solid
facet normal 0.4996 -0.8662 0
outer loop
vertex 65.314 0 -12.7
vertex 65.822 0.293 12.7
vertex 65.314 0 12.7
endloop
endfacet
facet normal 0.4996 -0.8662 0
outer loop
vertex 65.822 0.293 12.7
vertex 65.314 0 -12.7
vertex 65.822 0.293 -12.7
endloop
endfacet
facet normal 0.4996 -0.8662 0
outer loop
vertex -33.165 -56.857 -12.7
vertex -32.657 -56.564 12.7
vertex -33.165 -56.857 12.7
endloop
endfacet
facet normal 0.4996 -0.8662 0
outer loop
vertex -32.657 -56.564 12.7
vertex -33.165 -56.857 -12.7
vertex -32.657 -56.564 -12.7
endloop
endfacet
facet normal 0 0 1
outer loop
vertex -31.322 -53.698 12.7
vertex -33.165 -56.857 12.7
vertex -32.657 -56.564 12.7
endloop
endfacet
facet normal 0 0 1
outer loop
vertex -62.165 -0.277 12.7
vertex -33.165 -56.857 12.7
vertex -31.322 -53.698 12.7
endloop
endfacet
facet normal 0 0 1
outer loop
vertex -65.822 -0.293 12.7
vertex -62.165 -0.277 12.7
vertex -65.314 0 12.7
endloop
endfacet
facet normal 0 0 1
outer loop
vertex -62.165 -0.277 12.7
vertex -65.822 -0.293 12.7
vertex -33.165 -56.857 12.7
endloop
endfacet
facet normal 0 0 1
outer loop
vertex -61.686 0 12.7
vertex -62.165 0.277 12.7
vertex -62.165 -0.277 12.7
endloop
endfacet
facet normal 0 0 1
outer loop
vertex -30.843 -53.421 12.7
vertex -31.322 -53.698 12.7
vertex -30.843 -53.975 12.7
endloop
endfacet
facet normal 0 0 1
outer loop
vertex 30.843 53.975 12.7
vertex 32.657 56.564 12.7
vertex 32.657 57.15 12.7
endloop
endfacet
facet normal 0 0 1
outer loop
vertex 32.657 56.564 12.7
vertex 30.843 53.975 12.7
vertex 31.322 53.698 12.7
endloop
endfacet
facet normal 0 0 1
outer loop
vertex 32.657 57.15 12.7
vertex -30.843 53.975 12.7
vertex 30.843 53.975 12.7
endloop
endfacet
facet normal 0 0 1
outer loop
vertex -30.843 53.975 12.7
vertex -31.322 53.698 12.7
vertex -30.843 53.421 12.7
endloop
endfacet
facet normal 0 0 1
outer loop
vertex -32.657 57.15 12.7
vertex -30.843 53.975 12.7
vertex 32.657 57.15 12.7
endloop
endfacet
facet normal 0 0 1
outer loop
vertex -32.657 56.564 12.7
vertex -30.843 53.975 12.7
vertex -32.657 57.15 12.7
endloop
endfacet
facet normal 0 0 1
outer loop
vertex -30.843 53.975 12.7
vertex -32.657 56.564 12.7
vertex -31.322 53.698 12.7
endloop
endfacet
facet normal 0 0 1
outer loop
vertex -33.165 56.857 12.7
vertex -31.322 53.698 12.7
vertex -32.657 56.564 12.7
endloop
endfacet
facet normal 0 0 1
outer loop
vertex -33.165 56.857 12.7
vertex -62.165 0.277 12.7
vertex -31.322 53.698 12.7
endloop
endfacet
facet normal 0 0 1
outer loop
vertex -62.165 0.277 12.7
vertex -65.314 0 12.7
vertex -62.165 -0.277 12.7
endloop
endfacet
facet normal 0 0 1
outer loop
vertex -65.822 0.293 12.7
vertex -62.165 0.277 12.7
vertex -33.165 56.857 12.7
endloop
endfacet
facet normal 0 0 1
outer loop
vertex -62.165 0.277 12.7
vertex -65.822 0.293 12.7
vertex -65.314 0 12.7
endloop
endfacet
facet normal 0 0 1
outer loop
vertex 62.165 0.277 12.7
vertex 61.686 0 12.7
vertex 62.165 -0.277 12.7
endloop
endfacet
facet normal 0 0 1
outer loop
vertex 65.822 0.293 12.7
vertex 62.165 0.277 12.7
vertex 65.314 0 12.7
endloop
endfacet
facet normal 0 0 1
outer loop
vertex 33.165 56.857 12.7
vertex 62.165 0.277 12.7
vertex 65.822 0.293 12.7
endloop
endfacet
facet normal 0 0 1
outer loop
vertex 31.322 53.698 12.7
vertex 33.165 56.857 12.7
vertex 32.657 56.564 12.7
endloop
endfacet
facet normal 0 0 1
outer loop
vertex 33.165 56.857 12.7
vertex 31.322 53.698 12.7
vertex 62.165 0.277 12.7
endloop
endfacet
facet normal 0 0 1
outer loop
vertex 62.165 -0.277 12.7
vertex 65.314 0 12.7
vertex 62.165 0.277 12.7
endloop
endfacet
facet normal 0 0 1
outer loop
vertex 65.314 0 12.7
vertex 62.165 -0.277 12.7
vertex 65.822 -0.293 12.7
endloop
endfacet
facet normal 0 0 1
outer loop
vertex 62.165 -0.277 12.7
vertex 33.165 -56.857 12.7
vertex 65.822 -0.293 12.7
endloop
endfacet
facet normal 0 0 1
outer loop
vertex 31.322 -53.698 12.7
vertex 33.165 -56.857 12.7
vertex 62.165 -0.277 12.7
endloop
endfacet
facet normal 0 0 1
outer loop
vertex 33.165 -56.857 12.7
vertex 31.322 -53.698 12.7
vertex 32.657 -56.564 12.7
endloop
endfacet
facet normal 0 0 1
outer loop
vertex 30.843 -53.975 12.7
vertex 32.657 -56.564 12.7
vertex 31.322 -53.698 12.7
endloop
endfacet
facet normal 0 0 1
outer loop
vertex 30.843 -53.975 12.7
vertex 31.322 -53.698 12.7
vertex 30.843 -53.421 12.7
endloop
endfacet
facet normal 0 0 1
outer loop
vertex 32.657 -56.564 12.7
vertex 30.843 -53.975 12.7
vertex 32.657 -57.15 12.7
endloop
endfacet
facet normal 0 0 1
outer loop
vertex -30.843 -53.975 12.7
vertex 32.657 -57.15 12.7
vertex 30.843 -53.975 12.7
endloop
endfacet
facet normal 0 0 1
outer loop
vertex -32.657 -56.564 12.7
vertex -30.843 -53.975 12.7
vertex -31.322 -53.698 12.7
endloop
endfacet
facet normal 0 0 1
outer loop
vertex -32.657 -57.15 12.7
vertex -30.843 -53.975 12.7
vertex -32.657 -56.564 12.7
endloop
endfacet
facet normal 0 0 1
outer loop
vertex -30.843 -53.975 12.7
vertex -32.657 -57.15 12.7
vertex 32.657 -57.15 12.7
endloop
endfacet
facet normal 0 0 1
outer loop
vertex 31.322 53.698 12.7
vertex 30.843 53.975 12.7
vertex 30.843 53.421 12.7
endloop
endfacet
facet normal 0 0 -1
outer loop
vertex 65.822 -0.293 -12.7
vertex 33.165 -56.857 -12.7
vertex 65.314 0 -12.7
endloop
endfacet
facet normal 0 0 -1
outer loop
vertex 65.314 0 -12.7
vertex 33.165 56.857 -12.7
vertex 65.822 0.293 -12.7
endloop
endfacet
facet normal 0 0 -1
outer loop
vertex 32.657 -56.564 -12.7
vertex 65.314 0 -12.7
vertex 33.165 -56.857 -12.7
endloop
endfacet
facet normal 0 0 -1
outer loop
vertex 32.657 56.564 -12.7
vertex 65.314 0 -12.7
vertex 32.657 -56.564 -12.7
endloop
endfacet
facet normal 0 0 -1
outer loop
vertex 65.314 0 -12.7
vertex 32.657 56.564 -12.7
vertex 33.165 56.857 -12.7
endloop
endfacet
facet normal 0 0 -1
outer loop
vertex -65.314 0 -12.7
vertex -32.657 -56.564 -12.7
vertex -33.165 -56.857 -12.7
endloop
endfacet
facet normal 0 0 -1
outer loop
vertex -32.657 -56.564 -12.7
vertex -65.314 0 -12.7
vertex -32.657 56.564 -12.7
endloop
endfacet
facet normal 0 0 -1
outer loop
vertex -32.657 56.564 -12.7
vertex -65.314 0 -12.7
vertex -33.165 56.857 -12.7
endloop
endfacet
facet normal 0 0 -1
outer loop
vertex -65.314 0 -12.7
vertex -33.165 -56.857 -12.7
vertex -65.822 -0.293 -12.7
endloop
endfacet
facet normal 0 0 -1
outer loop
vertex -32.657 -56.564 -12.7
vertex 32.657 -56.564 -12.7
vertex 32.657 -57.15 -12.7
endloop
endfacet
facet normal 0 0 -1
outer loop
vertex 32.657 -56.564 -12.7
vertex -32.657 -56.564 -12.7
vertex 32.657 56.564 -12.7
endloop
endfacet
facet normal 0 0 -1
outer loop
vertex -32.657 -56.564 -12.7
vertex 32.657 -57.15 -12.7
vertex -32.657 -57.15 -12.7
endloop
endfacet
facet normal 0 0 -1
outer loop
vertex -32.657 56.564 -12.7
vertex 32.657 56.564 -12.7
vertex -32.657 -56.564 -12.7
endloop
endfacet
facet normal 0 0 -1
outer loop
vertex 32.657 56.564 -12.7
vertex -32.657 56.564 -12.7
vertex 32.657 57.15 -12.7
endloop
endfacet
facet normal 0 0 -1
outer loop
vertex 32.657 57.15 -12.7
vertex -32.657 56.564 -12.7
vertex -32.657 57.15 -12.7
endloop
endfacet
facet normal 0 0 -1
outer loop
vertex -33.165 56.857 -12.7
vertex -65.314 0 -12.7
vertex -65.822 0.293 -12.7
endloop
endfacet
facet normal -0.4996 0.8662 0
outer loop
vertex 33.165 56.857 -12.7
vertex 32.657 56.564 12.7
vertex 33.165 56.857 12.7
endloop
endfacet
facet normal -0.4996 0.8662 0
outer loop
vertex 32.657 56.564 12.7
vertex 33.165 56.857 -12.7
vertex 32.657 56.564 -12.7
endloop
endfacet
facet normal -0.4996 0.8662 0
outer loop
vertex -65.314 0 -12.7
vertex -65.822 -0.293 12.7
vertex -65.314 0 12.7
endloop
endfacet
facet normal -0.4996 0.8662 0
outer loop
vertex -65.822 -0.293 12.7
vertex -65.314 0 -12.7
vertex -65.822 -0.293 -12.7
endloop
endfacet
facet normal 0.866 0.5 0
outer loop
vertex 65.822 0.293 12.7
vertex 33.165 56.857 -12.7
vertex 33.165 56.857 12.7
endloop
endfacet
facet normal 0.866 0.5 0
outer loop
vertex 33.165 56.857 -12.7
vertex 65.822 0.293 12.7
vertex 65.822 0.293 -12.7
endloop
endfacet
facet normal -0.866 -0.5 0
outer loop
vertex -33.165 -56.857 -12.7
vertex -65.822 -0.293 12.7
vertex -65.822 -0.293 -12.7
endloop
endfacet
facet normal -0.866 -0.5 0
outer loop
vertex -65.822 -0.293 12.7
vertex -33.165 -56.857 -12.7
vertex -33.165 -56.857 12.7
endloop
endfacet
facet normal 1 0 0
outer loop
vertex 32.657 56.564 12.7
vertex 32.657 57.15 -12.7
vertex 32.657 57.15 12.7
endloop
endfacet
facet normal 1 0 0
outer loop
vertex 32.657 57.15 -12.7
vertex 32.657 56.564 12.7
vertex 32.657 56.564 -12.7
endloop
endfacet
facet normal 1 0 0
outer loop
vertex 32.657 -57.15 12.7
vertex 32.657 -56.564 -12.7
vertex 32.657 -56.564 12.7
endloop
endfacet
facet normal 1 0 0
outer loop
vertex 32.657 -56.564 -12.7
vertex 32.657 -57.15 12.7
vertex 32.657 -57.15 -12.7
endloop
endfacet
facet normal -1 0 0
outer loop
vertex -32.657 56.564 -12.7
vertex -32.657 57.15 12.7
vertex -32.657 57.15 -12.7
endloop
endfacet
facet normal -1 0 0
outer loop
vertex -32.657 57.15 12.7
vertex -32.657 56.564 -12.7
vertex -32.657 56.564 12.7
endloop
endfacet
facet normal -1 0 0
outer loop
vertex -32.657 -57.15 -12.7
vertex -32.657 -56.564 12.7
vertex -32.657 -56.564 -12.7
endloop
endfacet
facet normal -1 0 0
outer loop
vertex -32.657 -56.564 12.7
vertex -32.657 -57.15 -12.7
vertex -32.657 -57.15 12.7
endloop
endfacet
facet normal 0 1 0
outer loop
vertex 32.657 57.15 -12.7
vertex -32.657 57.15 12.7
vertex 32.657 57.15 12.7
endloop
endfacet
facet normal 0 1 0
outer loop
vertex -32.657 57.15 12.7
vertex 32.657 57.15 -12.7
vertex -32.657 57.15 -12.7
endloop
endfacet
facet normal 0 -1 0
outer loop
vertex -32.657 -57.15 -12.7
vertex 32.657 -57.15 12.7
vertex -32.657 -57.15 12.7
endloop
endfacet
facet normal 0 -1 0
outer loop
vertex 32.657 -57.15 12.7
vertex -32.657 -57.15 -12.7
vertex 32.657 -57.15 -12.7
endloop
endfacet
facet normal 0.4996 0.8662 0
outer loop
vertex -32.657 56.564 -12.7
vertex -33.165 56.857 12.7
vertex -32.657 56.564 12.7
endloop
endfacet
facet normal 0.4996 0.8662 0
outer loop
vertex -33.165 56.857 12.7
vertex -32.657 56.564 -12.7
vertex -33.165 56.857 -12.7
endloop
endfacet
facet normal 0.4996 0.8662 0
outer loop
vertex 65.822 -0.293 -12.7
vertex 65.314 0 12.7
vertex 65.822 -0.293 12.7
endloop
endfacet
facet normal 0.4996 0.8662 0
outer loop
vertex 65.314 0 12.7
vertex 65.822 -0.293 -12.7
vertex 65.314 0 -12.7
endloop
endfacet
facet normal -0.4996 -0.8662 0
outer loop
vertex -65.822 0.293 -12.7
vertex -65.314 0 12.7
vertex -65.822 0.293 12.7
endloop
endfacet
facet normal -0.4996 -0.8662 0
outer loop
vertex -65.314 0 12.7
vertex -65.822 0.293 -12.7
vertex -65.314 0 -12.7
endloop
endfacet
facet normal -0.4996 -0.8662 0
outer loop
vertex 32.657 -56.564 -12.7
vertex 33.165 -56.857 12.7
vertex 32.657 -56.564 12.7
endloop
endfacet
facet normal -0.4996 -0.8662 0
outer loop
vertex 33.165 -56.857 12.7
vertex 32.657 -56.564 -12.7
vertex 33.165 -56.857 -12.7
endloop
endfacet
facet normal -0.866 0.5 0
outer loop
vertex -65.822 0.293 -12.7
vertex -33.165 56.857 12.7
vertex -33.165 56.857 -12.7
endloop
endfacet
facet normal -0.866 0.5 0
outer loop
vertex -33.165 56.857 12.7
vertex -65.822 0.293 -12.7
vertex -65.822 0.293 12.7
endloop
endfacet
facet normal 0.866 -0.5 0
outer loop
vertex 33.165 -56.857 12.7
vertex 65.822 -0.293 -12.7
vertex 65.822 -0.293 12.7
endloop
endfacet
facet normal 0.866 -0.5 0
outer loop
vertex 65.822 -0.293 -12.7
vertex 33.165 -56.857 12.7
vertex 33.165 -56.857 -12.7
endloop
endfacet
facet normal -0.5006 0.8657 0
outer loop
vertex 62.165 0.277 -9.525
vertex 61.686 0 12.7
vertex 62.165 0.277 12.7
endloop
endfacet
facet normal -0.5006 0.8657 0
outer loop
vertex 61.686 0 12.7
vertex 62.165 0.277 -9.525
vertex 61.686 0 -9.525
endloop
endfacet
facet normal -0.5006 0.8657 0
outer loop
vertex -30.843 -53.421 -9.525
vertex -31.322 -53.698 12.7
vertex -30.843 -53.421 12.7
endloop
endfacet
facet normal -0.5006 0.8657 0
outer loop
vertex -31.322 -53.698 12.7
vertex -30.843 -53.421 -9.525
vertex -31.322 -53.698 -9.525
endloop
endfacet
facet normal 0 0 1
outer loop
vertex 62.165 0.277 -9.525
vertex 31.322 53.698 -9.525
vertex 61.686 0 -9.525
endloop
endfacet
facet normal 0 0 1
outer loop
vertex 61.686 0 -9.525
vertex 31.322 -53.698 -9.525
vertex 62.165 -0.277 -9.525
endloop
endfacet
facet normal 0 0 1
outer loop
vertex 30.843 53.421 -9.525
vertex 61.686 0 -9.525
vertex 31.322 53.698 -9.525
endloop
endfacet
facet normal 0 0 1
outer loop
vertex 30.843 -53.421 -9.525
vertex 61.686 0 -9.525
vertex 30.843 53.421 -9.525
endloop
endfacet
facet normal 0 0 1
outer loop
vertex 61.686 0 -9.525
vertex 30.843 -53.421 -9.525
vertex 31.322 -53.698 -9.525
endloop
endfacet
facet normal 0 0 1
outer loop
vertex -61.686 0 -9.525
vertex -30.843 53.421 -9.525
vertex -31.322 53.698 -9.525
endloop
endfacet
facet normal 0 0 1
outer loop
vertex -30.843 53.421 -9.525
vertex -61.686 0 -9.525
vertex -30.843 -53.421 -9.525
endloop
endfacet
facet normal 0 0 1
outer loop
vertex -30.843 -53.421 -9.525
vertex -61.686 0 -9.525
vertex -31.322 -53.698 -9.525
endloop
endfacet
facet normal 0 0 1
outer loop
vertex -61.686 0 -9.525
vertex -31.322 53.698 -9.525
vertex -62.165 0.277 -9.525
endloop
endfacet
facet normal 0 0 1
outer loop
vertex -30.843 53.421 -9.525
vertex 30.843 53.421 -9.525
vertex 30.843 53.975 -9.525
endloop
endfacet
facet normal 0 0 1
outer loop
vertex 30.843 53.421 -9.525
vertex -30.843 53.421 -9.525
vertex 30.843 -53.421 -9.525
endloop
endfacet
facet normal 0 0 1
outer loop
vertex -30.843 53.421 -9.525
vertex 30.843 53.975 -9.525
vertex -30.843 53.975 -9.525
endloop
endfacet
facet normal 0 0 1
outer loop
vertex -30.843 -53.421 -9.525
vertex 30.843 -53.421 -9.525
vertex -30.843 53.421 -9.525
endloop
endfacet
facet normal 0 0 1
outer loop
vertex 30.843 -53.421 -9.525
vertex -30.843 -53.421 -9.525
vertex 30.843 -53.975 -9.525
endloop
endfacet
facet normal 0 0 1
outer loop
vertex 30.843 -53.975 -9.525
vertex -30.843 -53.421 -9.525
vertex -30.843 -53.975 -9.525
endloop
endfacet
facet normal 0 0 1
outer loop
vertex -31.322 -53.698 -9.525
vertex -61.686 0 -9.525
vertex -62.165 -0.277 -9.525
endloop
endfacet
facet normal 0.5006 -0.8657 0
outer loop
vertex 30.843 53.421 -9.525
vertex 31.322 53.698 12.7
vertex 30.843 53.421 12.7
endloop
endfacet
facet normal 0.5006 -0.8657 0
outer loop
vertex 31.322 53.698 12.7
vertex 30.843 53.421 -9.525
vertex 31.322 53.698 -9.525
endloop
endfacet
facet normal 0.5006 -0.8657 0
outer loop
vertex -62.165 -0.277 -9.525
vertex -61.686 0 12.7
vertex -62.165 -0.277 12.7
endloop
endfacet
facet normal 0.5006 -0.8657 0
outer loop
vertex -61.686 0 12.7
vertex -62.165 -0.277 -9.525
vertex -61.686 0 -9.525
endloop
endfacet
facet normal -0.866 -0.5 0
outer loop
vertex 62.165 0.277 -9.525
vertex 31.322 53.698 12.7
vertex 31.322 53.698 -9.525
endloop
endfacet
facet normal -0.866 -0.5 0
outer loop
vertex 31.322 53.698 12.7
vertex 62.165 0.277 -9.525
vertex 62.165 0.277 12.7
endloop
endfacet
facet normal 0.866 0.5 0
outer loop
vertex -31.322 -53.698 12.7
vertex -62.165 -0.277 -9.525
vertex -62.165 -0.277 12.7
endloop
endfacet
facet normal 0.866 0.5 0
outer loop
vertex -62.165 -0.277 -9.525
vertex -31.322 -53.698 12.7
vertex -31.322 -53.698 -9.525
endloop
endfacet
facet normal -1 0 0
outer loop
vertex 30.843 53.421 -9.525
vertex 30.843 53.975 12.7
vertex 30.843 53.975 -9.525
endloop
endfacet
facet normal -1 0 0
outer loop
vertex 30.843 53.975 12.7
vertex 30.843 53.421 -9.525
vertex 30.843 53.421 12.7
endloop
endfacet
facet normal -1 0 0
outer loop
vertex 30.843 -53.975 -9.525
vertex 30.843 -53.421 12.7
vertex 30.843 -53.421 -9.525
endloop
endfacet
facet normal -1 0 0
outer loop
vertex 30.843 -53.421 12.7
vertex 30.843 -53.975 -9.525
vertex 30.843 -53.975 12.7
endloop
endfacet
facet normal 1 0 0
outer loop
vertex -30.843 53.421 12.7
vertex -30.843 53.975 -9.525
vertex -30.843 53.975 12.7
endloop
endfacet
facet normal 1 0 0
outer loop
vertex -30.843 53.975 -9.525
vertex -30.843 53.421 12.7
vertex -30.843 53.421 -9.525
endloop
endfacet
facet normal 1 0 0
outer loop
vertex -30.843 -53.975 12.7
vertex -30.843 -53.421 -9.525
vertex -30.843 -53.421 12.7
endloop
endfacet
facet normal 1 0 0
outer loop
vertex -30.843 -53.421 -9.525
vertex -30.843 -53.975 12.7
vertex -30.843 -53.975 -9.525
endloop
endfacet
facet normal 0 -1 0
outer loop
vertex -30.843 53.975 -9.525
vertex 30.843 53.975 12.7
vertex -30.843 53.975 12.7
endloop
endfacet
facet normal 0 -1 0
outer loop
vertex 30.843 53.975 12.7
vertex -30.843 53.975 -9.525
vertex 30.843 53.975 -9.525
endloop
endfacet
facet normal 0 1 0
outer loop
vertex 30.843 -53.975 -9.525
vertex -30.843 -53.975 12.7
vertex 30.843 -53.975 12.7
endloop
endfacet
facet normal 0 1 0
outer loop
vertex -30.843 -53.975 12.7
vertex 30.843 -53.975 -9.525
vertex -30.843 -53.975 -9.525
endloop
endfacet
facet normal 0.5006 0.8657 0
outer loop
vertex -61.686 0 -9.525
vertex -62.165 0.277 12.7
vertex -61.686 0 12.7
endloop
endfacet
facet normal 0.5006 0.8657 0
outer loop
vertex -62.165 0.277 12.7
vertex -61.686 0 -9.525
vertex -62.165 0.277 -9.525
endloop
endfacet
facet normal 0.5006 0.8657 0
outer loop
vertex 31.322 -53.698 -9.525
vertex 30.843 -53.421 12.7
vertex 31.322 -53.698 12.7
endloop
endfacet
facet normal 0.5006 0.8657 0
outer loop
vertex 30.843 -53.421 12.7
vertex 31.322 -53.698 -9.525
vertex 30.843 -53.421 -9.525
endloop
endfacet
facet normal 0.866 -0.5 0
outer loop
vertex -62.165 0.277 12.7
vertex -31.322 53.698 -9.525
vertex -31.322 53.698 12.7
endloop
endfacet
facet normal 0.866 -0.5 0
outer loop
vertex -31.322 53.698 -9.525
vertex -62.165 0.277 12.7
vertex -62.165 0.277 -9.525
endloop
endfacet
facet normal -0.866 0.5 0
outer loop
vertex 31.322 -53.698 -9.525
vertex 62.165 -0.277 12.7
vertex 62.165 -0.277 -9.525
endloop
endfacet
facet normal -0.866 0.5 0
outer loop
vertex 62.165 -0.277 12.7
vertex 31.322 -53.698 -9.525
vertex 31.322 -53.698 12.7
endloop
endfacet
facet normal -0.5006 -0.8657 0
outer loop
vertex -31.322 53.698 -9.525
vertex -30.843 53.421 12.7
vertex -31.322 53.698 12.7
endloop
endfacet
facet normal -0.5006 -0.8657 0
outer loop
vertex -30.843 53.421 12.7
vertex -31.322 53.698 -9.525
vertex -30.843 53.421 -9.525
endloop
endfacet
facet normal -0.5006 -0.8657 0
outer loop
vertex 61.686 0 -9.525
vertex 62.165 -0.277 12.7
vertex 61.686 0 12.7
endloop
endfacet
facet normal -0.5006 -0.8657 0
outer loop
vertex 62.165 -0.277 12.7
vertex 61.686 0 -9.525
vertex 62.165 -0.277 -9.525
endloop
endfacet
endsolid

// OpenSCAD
include <./MCAD/shapes.scad>;

inch = 25.4;

wall_height = 1 * inch;
wall_thickness = 1/4 * inch;
arena_radius = (4.5 * inch) / 2;
arena_diameter = arena_radius * 2;
center = true;

difference() {
    
    color("lightblue") hexagon( arena_diameter, wall_height );
    color("darkblue") translate([0, 0, wall_thickness]) hexagon( arena_diameter - wall_thickness, wall_height + wall_thickness );
}
